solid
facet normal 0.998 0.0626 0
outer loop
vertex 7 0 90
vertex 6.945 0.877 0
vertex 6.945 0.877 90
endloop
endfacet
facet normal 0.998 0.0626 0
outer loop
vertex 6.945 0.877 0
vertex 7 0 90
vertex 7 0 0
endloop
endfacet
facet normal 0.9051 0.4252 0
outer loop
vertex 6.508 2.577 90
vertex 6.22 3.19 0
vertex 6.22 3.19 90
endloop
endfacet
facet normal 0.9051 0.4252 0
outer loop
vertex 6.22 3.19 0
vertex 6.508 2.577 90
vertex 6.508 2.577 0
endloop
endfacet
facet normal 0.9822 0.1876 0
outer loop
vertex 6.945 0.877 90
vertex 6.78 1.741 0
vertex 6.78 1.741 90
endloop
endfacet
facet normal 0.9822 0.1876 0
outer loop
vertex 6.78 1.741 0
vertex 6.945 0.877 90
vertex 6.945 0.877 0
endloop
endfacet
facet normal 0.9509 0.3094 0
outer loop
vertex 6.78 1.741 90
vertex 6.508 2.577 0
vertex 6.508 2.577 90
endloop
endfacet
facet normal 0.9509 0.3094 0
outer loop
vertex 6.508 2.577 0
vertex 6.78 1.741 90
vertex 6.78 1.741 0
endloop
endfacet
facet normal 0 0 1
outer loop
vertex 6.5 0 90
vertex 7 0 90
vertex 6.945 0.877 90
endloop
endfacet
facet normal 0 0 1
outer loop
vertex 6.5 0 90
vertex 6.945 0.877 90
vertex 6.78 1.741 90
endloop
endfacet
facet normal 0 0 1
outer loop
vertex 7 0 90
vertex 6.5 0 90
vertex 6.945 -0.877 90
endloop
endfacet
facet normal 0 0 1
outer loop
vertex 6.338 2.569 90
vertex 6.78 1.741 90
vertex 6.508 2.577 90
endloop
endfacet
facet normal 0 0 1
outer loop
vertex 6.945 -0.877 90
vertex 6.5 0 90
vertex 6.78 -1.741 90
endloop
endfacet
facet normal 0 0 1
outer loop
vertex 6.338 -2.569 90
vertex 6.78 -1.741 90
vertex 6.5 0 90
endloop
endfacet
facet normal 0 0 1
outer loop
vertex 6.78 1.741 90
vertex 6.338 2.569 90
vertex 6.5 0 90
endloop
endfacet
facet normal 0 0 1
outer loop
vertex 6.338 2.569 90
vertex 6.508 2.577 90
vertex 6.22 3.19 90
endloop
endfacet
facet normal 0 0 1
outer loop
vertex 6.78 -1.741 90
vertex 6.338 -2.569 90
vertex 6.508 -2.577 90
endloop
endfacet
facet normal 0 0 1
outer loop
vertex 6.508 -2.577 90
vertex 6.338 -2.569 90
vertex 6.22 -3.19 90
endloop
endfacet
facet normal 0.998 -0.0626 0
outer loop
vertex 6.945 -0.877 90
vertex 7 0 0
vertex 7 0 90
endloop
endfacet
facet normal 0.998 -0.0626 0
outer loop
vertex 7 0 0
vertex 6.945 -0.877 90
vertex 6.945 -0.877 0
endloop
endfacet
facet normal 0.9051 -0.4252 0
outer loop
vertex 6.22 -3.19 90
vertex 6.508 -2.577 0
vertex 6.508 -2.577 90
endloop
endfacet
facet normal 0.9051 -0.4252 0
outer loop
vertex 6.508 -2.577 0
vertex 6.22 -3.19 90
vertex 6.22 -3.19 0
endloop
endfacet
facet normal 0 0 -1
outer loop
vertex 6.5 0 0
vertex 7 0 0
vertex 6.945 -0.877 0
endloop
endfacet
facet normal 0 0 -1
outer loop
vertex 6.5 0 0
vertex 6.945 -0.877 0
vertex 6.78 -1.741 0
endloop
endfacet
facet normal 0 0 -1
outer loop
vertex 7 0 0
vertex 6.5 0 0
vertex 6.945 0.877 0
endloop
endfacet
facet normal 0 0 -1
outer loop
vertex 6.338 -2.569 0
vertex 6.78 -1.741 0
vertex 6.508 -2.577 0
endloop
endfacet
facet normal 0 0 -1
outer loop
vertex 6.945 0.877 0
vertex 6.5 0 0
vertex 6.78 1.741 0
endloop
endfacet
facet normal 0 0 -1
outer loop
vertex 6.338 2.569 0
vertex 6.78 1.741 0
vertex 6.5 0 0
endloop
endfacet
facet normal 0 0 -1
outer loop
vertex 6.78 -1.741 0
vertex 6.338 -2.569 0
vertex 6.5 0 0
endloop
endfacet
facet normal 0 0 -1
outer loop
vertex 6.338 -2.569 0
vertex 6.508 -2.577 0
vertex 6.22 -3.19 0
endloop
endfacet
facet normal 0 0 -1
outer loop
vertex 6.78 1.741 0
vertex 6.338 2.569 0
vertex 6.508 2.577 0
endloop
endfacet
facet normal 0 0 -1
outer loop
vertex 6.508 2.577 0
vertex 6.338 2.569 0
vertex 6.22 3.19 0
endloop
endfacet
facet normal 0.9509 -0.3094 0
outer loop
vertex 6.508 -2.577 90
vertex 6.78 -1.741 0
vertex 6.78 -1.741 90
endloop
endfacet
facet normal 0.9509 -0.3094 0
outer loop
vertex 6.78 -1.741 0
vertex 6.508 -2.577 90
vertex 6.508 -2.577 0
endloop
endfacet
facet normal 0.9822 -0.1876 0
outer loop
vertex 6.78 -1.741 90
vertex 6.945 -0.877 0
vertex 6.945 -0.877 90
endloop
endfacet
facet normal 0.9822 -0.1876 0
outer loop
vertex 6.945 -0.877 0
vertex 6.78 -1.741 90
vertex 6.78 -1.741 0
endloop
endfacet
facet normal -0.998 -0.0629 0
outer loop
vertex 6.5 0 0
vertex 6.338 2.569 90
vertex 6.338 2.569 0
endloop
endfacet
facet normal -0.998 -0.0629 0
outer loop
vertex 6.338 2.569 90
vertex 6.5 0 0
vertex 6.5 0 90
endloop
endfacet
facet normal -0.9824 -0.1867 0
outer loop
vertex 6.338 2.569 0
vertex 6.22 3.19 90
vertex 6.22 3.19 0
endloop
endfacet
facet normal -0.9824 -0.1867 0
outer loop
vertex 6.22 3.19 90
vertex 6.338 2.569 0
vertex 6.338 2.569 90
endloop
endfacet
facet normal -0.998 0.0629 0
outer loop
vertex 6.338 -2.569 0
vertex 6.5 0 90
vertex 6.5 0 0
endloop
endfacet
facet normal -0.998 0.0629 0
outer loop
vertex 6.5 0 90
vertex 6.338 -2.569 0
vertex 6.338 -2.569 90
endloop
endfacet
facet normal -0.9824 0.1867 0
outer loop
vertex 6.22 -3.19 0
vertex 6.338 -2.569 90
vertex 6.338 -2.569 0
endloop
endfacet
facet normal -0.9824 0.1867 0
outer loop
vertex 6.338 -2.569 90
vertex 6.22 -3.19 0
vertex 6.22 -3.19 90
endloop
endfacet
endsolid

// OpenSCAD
$fn = 50;


difference() {
	union() {
		cylinder(h = 90, r = 7.0000000000);
		translate(v = [-17.0000000000, 0, 0]) {
			cylinder(h = 90, r = 7.0000000000);
		}
	}
	union() {
		cylinder(h = 90, r = 3.2500000000);
		cylinder(h = 90, r = 1.8000000000);
		cylinder(h = 90, r = 1.8000000000);
		cylinder(h = 90, r = 1.8000000000);
		translate(v = [-21.5000000000, 0, 0]) {
			hull() {
				translate(v = [-3.7500000000, 0.0000000000, 0]) {
					cylinder(h = 90, r = 10.5000000000);
				}
				translate(v = [3.7500000000, 0.0000000000, 0]) {
					cylinder(h = 90, r = 10.5000000000);
				}
				translate(v = [-3.7500000000, -0.0000000000, 0]) {
					cylinder(h = 90, r = 10.5000000000);
				}
				translate(v = [3.7500000000, -0.0000000000, 0]) {
					cylinder(h = 90, r = 10.5000000000);
				}
			}
		}
		translate(v = [-14.0000000000, 0, 0.0000000000]) {
			cylinder(h = 90, r = 20.5000000000);
		}
	}
}
